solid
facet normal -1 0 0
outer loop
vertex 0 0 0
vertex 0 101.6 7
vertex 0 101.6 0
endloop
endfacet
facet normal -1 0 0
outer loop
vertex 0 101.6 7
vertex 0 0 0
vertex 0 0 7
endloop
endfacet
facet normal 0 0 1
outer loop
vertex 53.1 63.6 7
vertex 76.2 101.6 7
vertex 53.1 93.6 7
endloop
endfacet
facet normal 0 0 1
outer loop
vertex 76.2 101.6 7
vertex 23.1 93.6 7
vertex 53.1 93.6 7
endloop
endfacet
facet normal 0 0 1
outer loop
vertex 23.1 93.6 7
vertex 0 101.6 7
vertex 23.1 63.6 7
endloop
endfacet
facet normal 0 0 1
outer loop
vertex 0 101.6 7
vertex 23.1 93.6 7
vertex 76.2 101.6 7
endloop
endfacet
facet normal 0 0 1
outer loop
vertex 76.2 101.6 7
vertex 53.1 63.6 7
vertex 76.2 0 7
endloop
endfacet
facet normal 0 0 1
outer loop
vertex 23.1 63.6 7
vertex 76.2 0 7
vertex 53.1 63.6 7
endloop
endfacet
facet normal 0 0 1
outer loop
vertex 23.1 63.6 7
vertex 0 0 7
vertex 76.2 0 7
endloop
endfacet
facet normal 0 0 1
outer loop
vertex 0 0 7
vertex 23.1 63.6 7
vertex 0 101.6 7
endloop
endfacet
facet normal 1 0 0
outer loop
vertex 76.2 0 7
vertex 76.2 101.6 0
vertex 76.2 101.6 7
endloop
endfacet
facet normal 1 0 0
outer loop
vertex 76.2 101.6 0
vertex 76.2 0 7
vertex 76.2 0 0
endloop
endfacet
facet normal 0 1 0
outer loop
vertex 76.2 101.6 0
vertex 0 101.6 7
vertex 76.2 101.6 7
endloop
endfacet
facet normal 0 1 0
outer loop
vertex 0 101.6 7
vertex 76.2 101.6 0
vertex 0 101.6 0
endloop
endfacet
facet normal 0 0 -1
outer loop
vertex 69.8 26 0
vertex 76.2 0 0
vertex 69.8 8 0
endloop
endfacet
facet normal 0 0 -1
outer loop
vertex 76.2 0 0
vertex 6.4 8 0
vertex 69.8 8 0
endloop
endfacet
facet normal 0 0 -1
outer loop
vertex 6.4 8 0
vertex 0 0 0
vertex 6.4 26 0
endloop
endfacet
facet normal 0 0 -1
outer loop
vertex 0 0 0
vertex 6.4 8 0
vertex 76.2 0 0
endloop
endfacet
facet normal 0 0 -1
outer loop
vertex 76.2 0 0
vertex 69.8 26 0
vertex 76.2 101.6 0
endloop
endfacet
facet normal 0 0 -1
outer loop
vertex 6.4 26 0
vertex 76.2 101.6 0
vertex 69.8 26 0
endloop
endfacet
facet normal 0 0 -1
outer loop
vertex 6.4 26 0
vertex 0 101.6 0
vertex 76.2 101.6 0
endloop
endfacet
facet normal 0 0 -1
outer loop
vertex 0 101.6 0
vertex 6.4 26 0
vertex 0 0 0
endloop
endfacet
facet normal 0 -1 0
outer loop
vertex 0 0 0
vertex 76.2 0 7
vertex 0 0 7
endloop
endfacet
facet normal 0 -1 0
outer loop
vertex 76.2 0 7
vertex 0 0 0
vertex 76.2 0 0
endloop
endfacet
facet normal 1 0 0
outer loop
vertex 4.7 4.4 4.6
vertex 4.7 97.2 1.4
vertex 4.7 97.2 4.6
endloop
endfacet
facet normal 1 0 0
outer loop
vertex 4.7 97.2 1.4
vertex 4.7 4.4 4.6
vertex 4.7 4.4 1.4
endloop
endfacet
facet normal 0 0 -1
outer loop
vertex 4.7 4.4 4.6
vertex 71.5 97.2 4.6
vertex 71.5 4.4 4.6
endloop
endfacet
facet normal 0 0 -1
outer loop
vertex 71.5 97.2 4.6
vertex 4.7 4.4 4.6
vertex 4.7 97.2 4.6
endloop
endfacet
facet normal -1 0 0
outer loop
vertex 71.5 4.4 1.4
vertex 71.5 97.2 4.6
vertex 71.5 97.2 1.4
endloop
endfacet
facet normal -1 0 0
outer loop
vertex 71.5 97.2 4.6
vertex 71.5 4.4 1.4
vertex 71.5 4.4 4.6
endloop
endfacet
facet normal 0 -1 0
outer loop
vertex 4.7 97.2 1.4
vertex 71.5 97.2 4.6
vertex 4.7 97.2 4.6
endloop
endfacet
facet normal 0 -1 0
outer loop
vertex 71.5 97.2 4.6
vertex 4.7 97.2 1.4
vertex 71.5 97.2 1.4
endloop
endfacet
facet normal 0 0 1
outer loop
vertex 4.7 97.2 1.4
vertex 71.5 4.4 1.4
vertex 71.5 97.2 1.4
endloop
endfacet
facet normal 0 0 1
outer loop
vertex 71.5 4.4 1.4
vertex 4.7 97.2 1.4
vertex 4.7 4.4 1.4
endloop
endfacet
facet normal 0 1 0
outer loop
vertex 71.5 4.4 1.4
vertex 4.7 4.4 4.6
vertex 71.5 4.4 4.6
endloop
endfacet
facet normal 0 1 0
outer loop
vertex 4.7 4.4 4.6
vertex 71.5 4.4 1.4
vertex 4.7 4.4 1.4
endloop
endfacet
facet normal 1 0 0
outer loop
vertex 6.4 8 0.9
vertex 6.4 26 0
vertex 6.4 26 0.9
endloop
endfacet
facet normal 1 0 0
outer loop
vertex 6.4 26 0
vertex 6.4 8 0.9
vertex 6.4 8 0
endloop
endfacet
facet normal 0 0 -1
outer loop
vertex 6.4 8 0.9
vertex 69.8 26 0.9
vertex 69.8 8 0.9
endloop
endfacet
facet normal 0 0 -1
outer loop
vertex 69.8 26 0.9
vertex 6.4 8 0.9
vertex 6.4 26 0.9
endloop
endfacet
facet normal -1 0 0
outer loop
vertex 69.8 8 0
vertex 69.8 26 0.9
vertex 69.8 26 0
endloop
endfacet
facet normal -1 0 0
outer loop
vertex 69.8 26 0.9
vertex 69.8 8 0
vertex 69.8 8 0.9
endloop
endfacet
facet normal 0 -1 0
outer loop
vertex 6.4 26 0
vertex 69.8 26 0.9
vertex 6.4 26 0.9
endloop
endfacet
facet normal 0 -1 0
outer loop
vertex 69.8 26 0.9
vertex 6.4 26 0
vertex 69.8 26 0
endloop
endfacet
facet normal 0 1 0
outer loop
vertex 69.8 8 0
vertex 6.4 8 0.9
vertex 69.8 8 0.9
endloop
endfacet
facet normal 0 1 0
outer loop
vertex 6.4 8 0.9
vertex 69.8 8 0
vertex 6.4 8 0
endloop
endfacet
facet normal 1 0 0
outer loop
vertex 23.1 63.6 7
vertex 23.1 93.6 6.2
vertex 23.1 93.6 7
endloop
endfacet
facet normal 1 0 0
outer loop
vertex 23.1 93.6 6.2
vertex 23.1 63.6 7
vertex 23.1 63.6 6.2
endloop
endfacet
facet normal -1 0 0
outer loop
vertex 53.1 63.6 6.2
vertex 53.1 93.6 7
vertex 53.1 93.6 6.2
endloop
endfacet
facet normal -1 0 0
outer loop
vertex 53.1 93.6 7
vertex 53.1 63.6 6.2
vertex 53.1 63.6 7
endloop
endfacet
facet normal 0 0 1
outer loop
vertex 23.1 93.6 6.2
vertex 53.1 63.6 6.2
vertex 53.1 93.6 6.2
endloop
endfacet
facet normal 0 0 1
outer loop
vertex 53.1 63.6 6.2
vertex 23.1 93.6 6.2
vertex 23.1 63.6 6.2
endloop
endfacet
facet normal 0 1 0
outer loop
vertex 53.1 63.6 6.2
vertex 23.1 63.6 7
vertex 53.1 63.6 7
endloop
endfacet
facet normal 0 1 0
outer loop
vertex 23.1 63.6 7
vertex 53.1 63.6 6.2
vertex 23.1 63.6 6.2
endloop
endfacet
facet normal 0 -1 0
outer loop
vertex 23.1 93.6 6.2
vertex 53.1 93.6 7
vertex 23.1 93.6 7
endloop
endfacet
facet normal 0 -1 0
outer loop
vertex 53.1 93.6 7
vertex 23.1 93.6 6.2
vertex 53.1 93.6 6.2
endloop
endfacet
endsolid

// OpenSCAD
// =============================================
// HoloCase Prototype for HOLOTracker
// Slim rigid trading card case (fits 3x4 top loader binder pages)
// Dimensions in mm
// =============================================

/* [Case Dimensions] */
// External width (3 inches)
case_width = 76.2;
// External height (4 inches)
case_height = 101.6;
// External thickness
case_thickness = 7.0;  // ~0.275 inches

/* [Card Cavity] */
// Card + sleeve width
card_width = 66;
// Card + sleeve height
card_height = 92;
// Card thickness (penny sleeve + card)
card_thickness = 2.2;
// Extra clearance around card
clearance = 0.4;

/* [Walls & Features] */
// Wall thickness
wall_thickness = 1.4;
// Label recess depth (front bottom)
label_recess_depth = 0.8;
// QR recess depth (back)
qr_recess_depth = 0.8;
// QR area size
qr_size = 30;

/* [Render Options] */
// Render lid or base (change to false for lid)
render_base = true;

module case_base() {
    difference() {
        // Outer shell
        cube([case_width, case_height, case_thickness]);
        
        // Inner card cavity
        translate([
            (case_width - card_width - clearance*2)/2,
            (case_height - card_height - clearance*2)/2,
            wall_thickness
        ])
        cube([
            card_width + clearance*2,
            card_height + clearance*2,
            card_thickness + 1
        ]);
        
        // Front label recess (bottom)
        translate([
            wall_thickness + 5,
            8,
            0
        ])
        cube([
            case_width - wall_thickness*2 - 10,
            18,
            label_recess_depth + 0.1
        ]);
        
        // Back QR recess
        translate([
            (case_width - qr_size)/2,
            case_height - qr_size - 8,
            case_thickness - qr_recess_depth
        ])
        cube([qr_size, qr_size, qr_recess_depth + 0.1]);
    }
}

module case_lid() {
    difference() {
        // Outer lid shell (slightly larger for fit)
        translate([0, 0, case_thickness - wall_thickness])
        cube([case_width, case_height, wall_thickness + 1]);
        
        // Inner lid cavity (to overlap base)
        translate([
            wall_thickness + 0.2,
            wall_thickness + 0.2,
            case_thickness - wall_thickness - 0.1
        ])
        cube([
            case_width - wall_thickness*2 - 0.4,
            case_height - wall_thickness*2 - 0.4,
            wall_thickness + 1
        ]);
    }
}

// Render
if (render_base) {
    case_base();
} else {
    case_lid();
}

// Optional: Add text branding (uncomment if desired)
// translate([case_width/2, 12, case_thickness - 0.4])
// linear_extrude(0.6)
// text("HoloCase", size=6, halign="center", valign="center");/x
